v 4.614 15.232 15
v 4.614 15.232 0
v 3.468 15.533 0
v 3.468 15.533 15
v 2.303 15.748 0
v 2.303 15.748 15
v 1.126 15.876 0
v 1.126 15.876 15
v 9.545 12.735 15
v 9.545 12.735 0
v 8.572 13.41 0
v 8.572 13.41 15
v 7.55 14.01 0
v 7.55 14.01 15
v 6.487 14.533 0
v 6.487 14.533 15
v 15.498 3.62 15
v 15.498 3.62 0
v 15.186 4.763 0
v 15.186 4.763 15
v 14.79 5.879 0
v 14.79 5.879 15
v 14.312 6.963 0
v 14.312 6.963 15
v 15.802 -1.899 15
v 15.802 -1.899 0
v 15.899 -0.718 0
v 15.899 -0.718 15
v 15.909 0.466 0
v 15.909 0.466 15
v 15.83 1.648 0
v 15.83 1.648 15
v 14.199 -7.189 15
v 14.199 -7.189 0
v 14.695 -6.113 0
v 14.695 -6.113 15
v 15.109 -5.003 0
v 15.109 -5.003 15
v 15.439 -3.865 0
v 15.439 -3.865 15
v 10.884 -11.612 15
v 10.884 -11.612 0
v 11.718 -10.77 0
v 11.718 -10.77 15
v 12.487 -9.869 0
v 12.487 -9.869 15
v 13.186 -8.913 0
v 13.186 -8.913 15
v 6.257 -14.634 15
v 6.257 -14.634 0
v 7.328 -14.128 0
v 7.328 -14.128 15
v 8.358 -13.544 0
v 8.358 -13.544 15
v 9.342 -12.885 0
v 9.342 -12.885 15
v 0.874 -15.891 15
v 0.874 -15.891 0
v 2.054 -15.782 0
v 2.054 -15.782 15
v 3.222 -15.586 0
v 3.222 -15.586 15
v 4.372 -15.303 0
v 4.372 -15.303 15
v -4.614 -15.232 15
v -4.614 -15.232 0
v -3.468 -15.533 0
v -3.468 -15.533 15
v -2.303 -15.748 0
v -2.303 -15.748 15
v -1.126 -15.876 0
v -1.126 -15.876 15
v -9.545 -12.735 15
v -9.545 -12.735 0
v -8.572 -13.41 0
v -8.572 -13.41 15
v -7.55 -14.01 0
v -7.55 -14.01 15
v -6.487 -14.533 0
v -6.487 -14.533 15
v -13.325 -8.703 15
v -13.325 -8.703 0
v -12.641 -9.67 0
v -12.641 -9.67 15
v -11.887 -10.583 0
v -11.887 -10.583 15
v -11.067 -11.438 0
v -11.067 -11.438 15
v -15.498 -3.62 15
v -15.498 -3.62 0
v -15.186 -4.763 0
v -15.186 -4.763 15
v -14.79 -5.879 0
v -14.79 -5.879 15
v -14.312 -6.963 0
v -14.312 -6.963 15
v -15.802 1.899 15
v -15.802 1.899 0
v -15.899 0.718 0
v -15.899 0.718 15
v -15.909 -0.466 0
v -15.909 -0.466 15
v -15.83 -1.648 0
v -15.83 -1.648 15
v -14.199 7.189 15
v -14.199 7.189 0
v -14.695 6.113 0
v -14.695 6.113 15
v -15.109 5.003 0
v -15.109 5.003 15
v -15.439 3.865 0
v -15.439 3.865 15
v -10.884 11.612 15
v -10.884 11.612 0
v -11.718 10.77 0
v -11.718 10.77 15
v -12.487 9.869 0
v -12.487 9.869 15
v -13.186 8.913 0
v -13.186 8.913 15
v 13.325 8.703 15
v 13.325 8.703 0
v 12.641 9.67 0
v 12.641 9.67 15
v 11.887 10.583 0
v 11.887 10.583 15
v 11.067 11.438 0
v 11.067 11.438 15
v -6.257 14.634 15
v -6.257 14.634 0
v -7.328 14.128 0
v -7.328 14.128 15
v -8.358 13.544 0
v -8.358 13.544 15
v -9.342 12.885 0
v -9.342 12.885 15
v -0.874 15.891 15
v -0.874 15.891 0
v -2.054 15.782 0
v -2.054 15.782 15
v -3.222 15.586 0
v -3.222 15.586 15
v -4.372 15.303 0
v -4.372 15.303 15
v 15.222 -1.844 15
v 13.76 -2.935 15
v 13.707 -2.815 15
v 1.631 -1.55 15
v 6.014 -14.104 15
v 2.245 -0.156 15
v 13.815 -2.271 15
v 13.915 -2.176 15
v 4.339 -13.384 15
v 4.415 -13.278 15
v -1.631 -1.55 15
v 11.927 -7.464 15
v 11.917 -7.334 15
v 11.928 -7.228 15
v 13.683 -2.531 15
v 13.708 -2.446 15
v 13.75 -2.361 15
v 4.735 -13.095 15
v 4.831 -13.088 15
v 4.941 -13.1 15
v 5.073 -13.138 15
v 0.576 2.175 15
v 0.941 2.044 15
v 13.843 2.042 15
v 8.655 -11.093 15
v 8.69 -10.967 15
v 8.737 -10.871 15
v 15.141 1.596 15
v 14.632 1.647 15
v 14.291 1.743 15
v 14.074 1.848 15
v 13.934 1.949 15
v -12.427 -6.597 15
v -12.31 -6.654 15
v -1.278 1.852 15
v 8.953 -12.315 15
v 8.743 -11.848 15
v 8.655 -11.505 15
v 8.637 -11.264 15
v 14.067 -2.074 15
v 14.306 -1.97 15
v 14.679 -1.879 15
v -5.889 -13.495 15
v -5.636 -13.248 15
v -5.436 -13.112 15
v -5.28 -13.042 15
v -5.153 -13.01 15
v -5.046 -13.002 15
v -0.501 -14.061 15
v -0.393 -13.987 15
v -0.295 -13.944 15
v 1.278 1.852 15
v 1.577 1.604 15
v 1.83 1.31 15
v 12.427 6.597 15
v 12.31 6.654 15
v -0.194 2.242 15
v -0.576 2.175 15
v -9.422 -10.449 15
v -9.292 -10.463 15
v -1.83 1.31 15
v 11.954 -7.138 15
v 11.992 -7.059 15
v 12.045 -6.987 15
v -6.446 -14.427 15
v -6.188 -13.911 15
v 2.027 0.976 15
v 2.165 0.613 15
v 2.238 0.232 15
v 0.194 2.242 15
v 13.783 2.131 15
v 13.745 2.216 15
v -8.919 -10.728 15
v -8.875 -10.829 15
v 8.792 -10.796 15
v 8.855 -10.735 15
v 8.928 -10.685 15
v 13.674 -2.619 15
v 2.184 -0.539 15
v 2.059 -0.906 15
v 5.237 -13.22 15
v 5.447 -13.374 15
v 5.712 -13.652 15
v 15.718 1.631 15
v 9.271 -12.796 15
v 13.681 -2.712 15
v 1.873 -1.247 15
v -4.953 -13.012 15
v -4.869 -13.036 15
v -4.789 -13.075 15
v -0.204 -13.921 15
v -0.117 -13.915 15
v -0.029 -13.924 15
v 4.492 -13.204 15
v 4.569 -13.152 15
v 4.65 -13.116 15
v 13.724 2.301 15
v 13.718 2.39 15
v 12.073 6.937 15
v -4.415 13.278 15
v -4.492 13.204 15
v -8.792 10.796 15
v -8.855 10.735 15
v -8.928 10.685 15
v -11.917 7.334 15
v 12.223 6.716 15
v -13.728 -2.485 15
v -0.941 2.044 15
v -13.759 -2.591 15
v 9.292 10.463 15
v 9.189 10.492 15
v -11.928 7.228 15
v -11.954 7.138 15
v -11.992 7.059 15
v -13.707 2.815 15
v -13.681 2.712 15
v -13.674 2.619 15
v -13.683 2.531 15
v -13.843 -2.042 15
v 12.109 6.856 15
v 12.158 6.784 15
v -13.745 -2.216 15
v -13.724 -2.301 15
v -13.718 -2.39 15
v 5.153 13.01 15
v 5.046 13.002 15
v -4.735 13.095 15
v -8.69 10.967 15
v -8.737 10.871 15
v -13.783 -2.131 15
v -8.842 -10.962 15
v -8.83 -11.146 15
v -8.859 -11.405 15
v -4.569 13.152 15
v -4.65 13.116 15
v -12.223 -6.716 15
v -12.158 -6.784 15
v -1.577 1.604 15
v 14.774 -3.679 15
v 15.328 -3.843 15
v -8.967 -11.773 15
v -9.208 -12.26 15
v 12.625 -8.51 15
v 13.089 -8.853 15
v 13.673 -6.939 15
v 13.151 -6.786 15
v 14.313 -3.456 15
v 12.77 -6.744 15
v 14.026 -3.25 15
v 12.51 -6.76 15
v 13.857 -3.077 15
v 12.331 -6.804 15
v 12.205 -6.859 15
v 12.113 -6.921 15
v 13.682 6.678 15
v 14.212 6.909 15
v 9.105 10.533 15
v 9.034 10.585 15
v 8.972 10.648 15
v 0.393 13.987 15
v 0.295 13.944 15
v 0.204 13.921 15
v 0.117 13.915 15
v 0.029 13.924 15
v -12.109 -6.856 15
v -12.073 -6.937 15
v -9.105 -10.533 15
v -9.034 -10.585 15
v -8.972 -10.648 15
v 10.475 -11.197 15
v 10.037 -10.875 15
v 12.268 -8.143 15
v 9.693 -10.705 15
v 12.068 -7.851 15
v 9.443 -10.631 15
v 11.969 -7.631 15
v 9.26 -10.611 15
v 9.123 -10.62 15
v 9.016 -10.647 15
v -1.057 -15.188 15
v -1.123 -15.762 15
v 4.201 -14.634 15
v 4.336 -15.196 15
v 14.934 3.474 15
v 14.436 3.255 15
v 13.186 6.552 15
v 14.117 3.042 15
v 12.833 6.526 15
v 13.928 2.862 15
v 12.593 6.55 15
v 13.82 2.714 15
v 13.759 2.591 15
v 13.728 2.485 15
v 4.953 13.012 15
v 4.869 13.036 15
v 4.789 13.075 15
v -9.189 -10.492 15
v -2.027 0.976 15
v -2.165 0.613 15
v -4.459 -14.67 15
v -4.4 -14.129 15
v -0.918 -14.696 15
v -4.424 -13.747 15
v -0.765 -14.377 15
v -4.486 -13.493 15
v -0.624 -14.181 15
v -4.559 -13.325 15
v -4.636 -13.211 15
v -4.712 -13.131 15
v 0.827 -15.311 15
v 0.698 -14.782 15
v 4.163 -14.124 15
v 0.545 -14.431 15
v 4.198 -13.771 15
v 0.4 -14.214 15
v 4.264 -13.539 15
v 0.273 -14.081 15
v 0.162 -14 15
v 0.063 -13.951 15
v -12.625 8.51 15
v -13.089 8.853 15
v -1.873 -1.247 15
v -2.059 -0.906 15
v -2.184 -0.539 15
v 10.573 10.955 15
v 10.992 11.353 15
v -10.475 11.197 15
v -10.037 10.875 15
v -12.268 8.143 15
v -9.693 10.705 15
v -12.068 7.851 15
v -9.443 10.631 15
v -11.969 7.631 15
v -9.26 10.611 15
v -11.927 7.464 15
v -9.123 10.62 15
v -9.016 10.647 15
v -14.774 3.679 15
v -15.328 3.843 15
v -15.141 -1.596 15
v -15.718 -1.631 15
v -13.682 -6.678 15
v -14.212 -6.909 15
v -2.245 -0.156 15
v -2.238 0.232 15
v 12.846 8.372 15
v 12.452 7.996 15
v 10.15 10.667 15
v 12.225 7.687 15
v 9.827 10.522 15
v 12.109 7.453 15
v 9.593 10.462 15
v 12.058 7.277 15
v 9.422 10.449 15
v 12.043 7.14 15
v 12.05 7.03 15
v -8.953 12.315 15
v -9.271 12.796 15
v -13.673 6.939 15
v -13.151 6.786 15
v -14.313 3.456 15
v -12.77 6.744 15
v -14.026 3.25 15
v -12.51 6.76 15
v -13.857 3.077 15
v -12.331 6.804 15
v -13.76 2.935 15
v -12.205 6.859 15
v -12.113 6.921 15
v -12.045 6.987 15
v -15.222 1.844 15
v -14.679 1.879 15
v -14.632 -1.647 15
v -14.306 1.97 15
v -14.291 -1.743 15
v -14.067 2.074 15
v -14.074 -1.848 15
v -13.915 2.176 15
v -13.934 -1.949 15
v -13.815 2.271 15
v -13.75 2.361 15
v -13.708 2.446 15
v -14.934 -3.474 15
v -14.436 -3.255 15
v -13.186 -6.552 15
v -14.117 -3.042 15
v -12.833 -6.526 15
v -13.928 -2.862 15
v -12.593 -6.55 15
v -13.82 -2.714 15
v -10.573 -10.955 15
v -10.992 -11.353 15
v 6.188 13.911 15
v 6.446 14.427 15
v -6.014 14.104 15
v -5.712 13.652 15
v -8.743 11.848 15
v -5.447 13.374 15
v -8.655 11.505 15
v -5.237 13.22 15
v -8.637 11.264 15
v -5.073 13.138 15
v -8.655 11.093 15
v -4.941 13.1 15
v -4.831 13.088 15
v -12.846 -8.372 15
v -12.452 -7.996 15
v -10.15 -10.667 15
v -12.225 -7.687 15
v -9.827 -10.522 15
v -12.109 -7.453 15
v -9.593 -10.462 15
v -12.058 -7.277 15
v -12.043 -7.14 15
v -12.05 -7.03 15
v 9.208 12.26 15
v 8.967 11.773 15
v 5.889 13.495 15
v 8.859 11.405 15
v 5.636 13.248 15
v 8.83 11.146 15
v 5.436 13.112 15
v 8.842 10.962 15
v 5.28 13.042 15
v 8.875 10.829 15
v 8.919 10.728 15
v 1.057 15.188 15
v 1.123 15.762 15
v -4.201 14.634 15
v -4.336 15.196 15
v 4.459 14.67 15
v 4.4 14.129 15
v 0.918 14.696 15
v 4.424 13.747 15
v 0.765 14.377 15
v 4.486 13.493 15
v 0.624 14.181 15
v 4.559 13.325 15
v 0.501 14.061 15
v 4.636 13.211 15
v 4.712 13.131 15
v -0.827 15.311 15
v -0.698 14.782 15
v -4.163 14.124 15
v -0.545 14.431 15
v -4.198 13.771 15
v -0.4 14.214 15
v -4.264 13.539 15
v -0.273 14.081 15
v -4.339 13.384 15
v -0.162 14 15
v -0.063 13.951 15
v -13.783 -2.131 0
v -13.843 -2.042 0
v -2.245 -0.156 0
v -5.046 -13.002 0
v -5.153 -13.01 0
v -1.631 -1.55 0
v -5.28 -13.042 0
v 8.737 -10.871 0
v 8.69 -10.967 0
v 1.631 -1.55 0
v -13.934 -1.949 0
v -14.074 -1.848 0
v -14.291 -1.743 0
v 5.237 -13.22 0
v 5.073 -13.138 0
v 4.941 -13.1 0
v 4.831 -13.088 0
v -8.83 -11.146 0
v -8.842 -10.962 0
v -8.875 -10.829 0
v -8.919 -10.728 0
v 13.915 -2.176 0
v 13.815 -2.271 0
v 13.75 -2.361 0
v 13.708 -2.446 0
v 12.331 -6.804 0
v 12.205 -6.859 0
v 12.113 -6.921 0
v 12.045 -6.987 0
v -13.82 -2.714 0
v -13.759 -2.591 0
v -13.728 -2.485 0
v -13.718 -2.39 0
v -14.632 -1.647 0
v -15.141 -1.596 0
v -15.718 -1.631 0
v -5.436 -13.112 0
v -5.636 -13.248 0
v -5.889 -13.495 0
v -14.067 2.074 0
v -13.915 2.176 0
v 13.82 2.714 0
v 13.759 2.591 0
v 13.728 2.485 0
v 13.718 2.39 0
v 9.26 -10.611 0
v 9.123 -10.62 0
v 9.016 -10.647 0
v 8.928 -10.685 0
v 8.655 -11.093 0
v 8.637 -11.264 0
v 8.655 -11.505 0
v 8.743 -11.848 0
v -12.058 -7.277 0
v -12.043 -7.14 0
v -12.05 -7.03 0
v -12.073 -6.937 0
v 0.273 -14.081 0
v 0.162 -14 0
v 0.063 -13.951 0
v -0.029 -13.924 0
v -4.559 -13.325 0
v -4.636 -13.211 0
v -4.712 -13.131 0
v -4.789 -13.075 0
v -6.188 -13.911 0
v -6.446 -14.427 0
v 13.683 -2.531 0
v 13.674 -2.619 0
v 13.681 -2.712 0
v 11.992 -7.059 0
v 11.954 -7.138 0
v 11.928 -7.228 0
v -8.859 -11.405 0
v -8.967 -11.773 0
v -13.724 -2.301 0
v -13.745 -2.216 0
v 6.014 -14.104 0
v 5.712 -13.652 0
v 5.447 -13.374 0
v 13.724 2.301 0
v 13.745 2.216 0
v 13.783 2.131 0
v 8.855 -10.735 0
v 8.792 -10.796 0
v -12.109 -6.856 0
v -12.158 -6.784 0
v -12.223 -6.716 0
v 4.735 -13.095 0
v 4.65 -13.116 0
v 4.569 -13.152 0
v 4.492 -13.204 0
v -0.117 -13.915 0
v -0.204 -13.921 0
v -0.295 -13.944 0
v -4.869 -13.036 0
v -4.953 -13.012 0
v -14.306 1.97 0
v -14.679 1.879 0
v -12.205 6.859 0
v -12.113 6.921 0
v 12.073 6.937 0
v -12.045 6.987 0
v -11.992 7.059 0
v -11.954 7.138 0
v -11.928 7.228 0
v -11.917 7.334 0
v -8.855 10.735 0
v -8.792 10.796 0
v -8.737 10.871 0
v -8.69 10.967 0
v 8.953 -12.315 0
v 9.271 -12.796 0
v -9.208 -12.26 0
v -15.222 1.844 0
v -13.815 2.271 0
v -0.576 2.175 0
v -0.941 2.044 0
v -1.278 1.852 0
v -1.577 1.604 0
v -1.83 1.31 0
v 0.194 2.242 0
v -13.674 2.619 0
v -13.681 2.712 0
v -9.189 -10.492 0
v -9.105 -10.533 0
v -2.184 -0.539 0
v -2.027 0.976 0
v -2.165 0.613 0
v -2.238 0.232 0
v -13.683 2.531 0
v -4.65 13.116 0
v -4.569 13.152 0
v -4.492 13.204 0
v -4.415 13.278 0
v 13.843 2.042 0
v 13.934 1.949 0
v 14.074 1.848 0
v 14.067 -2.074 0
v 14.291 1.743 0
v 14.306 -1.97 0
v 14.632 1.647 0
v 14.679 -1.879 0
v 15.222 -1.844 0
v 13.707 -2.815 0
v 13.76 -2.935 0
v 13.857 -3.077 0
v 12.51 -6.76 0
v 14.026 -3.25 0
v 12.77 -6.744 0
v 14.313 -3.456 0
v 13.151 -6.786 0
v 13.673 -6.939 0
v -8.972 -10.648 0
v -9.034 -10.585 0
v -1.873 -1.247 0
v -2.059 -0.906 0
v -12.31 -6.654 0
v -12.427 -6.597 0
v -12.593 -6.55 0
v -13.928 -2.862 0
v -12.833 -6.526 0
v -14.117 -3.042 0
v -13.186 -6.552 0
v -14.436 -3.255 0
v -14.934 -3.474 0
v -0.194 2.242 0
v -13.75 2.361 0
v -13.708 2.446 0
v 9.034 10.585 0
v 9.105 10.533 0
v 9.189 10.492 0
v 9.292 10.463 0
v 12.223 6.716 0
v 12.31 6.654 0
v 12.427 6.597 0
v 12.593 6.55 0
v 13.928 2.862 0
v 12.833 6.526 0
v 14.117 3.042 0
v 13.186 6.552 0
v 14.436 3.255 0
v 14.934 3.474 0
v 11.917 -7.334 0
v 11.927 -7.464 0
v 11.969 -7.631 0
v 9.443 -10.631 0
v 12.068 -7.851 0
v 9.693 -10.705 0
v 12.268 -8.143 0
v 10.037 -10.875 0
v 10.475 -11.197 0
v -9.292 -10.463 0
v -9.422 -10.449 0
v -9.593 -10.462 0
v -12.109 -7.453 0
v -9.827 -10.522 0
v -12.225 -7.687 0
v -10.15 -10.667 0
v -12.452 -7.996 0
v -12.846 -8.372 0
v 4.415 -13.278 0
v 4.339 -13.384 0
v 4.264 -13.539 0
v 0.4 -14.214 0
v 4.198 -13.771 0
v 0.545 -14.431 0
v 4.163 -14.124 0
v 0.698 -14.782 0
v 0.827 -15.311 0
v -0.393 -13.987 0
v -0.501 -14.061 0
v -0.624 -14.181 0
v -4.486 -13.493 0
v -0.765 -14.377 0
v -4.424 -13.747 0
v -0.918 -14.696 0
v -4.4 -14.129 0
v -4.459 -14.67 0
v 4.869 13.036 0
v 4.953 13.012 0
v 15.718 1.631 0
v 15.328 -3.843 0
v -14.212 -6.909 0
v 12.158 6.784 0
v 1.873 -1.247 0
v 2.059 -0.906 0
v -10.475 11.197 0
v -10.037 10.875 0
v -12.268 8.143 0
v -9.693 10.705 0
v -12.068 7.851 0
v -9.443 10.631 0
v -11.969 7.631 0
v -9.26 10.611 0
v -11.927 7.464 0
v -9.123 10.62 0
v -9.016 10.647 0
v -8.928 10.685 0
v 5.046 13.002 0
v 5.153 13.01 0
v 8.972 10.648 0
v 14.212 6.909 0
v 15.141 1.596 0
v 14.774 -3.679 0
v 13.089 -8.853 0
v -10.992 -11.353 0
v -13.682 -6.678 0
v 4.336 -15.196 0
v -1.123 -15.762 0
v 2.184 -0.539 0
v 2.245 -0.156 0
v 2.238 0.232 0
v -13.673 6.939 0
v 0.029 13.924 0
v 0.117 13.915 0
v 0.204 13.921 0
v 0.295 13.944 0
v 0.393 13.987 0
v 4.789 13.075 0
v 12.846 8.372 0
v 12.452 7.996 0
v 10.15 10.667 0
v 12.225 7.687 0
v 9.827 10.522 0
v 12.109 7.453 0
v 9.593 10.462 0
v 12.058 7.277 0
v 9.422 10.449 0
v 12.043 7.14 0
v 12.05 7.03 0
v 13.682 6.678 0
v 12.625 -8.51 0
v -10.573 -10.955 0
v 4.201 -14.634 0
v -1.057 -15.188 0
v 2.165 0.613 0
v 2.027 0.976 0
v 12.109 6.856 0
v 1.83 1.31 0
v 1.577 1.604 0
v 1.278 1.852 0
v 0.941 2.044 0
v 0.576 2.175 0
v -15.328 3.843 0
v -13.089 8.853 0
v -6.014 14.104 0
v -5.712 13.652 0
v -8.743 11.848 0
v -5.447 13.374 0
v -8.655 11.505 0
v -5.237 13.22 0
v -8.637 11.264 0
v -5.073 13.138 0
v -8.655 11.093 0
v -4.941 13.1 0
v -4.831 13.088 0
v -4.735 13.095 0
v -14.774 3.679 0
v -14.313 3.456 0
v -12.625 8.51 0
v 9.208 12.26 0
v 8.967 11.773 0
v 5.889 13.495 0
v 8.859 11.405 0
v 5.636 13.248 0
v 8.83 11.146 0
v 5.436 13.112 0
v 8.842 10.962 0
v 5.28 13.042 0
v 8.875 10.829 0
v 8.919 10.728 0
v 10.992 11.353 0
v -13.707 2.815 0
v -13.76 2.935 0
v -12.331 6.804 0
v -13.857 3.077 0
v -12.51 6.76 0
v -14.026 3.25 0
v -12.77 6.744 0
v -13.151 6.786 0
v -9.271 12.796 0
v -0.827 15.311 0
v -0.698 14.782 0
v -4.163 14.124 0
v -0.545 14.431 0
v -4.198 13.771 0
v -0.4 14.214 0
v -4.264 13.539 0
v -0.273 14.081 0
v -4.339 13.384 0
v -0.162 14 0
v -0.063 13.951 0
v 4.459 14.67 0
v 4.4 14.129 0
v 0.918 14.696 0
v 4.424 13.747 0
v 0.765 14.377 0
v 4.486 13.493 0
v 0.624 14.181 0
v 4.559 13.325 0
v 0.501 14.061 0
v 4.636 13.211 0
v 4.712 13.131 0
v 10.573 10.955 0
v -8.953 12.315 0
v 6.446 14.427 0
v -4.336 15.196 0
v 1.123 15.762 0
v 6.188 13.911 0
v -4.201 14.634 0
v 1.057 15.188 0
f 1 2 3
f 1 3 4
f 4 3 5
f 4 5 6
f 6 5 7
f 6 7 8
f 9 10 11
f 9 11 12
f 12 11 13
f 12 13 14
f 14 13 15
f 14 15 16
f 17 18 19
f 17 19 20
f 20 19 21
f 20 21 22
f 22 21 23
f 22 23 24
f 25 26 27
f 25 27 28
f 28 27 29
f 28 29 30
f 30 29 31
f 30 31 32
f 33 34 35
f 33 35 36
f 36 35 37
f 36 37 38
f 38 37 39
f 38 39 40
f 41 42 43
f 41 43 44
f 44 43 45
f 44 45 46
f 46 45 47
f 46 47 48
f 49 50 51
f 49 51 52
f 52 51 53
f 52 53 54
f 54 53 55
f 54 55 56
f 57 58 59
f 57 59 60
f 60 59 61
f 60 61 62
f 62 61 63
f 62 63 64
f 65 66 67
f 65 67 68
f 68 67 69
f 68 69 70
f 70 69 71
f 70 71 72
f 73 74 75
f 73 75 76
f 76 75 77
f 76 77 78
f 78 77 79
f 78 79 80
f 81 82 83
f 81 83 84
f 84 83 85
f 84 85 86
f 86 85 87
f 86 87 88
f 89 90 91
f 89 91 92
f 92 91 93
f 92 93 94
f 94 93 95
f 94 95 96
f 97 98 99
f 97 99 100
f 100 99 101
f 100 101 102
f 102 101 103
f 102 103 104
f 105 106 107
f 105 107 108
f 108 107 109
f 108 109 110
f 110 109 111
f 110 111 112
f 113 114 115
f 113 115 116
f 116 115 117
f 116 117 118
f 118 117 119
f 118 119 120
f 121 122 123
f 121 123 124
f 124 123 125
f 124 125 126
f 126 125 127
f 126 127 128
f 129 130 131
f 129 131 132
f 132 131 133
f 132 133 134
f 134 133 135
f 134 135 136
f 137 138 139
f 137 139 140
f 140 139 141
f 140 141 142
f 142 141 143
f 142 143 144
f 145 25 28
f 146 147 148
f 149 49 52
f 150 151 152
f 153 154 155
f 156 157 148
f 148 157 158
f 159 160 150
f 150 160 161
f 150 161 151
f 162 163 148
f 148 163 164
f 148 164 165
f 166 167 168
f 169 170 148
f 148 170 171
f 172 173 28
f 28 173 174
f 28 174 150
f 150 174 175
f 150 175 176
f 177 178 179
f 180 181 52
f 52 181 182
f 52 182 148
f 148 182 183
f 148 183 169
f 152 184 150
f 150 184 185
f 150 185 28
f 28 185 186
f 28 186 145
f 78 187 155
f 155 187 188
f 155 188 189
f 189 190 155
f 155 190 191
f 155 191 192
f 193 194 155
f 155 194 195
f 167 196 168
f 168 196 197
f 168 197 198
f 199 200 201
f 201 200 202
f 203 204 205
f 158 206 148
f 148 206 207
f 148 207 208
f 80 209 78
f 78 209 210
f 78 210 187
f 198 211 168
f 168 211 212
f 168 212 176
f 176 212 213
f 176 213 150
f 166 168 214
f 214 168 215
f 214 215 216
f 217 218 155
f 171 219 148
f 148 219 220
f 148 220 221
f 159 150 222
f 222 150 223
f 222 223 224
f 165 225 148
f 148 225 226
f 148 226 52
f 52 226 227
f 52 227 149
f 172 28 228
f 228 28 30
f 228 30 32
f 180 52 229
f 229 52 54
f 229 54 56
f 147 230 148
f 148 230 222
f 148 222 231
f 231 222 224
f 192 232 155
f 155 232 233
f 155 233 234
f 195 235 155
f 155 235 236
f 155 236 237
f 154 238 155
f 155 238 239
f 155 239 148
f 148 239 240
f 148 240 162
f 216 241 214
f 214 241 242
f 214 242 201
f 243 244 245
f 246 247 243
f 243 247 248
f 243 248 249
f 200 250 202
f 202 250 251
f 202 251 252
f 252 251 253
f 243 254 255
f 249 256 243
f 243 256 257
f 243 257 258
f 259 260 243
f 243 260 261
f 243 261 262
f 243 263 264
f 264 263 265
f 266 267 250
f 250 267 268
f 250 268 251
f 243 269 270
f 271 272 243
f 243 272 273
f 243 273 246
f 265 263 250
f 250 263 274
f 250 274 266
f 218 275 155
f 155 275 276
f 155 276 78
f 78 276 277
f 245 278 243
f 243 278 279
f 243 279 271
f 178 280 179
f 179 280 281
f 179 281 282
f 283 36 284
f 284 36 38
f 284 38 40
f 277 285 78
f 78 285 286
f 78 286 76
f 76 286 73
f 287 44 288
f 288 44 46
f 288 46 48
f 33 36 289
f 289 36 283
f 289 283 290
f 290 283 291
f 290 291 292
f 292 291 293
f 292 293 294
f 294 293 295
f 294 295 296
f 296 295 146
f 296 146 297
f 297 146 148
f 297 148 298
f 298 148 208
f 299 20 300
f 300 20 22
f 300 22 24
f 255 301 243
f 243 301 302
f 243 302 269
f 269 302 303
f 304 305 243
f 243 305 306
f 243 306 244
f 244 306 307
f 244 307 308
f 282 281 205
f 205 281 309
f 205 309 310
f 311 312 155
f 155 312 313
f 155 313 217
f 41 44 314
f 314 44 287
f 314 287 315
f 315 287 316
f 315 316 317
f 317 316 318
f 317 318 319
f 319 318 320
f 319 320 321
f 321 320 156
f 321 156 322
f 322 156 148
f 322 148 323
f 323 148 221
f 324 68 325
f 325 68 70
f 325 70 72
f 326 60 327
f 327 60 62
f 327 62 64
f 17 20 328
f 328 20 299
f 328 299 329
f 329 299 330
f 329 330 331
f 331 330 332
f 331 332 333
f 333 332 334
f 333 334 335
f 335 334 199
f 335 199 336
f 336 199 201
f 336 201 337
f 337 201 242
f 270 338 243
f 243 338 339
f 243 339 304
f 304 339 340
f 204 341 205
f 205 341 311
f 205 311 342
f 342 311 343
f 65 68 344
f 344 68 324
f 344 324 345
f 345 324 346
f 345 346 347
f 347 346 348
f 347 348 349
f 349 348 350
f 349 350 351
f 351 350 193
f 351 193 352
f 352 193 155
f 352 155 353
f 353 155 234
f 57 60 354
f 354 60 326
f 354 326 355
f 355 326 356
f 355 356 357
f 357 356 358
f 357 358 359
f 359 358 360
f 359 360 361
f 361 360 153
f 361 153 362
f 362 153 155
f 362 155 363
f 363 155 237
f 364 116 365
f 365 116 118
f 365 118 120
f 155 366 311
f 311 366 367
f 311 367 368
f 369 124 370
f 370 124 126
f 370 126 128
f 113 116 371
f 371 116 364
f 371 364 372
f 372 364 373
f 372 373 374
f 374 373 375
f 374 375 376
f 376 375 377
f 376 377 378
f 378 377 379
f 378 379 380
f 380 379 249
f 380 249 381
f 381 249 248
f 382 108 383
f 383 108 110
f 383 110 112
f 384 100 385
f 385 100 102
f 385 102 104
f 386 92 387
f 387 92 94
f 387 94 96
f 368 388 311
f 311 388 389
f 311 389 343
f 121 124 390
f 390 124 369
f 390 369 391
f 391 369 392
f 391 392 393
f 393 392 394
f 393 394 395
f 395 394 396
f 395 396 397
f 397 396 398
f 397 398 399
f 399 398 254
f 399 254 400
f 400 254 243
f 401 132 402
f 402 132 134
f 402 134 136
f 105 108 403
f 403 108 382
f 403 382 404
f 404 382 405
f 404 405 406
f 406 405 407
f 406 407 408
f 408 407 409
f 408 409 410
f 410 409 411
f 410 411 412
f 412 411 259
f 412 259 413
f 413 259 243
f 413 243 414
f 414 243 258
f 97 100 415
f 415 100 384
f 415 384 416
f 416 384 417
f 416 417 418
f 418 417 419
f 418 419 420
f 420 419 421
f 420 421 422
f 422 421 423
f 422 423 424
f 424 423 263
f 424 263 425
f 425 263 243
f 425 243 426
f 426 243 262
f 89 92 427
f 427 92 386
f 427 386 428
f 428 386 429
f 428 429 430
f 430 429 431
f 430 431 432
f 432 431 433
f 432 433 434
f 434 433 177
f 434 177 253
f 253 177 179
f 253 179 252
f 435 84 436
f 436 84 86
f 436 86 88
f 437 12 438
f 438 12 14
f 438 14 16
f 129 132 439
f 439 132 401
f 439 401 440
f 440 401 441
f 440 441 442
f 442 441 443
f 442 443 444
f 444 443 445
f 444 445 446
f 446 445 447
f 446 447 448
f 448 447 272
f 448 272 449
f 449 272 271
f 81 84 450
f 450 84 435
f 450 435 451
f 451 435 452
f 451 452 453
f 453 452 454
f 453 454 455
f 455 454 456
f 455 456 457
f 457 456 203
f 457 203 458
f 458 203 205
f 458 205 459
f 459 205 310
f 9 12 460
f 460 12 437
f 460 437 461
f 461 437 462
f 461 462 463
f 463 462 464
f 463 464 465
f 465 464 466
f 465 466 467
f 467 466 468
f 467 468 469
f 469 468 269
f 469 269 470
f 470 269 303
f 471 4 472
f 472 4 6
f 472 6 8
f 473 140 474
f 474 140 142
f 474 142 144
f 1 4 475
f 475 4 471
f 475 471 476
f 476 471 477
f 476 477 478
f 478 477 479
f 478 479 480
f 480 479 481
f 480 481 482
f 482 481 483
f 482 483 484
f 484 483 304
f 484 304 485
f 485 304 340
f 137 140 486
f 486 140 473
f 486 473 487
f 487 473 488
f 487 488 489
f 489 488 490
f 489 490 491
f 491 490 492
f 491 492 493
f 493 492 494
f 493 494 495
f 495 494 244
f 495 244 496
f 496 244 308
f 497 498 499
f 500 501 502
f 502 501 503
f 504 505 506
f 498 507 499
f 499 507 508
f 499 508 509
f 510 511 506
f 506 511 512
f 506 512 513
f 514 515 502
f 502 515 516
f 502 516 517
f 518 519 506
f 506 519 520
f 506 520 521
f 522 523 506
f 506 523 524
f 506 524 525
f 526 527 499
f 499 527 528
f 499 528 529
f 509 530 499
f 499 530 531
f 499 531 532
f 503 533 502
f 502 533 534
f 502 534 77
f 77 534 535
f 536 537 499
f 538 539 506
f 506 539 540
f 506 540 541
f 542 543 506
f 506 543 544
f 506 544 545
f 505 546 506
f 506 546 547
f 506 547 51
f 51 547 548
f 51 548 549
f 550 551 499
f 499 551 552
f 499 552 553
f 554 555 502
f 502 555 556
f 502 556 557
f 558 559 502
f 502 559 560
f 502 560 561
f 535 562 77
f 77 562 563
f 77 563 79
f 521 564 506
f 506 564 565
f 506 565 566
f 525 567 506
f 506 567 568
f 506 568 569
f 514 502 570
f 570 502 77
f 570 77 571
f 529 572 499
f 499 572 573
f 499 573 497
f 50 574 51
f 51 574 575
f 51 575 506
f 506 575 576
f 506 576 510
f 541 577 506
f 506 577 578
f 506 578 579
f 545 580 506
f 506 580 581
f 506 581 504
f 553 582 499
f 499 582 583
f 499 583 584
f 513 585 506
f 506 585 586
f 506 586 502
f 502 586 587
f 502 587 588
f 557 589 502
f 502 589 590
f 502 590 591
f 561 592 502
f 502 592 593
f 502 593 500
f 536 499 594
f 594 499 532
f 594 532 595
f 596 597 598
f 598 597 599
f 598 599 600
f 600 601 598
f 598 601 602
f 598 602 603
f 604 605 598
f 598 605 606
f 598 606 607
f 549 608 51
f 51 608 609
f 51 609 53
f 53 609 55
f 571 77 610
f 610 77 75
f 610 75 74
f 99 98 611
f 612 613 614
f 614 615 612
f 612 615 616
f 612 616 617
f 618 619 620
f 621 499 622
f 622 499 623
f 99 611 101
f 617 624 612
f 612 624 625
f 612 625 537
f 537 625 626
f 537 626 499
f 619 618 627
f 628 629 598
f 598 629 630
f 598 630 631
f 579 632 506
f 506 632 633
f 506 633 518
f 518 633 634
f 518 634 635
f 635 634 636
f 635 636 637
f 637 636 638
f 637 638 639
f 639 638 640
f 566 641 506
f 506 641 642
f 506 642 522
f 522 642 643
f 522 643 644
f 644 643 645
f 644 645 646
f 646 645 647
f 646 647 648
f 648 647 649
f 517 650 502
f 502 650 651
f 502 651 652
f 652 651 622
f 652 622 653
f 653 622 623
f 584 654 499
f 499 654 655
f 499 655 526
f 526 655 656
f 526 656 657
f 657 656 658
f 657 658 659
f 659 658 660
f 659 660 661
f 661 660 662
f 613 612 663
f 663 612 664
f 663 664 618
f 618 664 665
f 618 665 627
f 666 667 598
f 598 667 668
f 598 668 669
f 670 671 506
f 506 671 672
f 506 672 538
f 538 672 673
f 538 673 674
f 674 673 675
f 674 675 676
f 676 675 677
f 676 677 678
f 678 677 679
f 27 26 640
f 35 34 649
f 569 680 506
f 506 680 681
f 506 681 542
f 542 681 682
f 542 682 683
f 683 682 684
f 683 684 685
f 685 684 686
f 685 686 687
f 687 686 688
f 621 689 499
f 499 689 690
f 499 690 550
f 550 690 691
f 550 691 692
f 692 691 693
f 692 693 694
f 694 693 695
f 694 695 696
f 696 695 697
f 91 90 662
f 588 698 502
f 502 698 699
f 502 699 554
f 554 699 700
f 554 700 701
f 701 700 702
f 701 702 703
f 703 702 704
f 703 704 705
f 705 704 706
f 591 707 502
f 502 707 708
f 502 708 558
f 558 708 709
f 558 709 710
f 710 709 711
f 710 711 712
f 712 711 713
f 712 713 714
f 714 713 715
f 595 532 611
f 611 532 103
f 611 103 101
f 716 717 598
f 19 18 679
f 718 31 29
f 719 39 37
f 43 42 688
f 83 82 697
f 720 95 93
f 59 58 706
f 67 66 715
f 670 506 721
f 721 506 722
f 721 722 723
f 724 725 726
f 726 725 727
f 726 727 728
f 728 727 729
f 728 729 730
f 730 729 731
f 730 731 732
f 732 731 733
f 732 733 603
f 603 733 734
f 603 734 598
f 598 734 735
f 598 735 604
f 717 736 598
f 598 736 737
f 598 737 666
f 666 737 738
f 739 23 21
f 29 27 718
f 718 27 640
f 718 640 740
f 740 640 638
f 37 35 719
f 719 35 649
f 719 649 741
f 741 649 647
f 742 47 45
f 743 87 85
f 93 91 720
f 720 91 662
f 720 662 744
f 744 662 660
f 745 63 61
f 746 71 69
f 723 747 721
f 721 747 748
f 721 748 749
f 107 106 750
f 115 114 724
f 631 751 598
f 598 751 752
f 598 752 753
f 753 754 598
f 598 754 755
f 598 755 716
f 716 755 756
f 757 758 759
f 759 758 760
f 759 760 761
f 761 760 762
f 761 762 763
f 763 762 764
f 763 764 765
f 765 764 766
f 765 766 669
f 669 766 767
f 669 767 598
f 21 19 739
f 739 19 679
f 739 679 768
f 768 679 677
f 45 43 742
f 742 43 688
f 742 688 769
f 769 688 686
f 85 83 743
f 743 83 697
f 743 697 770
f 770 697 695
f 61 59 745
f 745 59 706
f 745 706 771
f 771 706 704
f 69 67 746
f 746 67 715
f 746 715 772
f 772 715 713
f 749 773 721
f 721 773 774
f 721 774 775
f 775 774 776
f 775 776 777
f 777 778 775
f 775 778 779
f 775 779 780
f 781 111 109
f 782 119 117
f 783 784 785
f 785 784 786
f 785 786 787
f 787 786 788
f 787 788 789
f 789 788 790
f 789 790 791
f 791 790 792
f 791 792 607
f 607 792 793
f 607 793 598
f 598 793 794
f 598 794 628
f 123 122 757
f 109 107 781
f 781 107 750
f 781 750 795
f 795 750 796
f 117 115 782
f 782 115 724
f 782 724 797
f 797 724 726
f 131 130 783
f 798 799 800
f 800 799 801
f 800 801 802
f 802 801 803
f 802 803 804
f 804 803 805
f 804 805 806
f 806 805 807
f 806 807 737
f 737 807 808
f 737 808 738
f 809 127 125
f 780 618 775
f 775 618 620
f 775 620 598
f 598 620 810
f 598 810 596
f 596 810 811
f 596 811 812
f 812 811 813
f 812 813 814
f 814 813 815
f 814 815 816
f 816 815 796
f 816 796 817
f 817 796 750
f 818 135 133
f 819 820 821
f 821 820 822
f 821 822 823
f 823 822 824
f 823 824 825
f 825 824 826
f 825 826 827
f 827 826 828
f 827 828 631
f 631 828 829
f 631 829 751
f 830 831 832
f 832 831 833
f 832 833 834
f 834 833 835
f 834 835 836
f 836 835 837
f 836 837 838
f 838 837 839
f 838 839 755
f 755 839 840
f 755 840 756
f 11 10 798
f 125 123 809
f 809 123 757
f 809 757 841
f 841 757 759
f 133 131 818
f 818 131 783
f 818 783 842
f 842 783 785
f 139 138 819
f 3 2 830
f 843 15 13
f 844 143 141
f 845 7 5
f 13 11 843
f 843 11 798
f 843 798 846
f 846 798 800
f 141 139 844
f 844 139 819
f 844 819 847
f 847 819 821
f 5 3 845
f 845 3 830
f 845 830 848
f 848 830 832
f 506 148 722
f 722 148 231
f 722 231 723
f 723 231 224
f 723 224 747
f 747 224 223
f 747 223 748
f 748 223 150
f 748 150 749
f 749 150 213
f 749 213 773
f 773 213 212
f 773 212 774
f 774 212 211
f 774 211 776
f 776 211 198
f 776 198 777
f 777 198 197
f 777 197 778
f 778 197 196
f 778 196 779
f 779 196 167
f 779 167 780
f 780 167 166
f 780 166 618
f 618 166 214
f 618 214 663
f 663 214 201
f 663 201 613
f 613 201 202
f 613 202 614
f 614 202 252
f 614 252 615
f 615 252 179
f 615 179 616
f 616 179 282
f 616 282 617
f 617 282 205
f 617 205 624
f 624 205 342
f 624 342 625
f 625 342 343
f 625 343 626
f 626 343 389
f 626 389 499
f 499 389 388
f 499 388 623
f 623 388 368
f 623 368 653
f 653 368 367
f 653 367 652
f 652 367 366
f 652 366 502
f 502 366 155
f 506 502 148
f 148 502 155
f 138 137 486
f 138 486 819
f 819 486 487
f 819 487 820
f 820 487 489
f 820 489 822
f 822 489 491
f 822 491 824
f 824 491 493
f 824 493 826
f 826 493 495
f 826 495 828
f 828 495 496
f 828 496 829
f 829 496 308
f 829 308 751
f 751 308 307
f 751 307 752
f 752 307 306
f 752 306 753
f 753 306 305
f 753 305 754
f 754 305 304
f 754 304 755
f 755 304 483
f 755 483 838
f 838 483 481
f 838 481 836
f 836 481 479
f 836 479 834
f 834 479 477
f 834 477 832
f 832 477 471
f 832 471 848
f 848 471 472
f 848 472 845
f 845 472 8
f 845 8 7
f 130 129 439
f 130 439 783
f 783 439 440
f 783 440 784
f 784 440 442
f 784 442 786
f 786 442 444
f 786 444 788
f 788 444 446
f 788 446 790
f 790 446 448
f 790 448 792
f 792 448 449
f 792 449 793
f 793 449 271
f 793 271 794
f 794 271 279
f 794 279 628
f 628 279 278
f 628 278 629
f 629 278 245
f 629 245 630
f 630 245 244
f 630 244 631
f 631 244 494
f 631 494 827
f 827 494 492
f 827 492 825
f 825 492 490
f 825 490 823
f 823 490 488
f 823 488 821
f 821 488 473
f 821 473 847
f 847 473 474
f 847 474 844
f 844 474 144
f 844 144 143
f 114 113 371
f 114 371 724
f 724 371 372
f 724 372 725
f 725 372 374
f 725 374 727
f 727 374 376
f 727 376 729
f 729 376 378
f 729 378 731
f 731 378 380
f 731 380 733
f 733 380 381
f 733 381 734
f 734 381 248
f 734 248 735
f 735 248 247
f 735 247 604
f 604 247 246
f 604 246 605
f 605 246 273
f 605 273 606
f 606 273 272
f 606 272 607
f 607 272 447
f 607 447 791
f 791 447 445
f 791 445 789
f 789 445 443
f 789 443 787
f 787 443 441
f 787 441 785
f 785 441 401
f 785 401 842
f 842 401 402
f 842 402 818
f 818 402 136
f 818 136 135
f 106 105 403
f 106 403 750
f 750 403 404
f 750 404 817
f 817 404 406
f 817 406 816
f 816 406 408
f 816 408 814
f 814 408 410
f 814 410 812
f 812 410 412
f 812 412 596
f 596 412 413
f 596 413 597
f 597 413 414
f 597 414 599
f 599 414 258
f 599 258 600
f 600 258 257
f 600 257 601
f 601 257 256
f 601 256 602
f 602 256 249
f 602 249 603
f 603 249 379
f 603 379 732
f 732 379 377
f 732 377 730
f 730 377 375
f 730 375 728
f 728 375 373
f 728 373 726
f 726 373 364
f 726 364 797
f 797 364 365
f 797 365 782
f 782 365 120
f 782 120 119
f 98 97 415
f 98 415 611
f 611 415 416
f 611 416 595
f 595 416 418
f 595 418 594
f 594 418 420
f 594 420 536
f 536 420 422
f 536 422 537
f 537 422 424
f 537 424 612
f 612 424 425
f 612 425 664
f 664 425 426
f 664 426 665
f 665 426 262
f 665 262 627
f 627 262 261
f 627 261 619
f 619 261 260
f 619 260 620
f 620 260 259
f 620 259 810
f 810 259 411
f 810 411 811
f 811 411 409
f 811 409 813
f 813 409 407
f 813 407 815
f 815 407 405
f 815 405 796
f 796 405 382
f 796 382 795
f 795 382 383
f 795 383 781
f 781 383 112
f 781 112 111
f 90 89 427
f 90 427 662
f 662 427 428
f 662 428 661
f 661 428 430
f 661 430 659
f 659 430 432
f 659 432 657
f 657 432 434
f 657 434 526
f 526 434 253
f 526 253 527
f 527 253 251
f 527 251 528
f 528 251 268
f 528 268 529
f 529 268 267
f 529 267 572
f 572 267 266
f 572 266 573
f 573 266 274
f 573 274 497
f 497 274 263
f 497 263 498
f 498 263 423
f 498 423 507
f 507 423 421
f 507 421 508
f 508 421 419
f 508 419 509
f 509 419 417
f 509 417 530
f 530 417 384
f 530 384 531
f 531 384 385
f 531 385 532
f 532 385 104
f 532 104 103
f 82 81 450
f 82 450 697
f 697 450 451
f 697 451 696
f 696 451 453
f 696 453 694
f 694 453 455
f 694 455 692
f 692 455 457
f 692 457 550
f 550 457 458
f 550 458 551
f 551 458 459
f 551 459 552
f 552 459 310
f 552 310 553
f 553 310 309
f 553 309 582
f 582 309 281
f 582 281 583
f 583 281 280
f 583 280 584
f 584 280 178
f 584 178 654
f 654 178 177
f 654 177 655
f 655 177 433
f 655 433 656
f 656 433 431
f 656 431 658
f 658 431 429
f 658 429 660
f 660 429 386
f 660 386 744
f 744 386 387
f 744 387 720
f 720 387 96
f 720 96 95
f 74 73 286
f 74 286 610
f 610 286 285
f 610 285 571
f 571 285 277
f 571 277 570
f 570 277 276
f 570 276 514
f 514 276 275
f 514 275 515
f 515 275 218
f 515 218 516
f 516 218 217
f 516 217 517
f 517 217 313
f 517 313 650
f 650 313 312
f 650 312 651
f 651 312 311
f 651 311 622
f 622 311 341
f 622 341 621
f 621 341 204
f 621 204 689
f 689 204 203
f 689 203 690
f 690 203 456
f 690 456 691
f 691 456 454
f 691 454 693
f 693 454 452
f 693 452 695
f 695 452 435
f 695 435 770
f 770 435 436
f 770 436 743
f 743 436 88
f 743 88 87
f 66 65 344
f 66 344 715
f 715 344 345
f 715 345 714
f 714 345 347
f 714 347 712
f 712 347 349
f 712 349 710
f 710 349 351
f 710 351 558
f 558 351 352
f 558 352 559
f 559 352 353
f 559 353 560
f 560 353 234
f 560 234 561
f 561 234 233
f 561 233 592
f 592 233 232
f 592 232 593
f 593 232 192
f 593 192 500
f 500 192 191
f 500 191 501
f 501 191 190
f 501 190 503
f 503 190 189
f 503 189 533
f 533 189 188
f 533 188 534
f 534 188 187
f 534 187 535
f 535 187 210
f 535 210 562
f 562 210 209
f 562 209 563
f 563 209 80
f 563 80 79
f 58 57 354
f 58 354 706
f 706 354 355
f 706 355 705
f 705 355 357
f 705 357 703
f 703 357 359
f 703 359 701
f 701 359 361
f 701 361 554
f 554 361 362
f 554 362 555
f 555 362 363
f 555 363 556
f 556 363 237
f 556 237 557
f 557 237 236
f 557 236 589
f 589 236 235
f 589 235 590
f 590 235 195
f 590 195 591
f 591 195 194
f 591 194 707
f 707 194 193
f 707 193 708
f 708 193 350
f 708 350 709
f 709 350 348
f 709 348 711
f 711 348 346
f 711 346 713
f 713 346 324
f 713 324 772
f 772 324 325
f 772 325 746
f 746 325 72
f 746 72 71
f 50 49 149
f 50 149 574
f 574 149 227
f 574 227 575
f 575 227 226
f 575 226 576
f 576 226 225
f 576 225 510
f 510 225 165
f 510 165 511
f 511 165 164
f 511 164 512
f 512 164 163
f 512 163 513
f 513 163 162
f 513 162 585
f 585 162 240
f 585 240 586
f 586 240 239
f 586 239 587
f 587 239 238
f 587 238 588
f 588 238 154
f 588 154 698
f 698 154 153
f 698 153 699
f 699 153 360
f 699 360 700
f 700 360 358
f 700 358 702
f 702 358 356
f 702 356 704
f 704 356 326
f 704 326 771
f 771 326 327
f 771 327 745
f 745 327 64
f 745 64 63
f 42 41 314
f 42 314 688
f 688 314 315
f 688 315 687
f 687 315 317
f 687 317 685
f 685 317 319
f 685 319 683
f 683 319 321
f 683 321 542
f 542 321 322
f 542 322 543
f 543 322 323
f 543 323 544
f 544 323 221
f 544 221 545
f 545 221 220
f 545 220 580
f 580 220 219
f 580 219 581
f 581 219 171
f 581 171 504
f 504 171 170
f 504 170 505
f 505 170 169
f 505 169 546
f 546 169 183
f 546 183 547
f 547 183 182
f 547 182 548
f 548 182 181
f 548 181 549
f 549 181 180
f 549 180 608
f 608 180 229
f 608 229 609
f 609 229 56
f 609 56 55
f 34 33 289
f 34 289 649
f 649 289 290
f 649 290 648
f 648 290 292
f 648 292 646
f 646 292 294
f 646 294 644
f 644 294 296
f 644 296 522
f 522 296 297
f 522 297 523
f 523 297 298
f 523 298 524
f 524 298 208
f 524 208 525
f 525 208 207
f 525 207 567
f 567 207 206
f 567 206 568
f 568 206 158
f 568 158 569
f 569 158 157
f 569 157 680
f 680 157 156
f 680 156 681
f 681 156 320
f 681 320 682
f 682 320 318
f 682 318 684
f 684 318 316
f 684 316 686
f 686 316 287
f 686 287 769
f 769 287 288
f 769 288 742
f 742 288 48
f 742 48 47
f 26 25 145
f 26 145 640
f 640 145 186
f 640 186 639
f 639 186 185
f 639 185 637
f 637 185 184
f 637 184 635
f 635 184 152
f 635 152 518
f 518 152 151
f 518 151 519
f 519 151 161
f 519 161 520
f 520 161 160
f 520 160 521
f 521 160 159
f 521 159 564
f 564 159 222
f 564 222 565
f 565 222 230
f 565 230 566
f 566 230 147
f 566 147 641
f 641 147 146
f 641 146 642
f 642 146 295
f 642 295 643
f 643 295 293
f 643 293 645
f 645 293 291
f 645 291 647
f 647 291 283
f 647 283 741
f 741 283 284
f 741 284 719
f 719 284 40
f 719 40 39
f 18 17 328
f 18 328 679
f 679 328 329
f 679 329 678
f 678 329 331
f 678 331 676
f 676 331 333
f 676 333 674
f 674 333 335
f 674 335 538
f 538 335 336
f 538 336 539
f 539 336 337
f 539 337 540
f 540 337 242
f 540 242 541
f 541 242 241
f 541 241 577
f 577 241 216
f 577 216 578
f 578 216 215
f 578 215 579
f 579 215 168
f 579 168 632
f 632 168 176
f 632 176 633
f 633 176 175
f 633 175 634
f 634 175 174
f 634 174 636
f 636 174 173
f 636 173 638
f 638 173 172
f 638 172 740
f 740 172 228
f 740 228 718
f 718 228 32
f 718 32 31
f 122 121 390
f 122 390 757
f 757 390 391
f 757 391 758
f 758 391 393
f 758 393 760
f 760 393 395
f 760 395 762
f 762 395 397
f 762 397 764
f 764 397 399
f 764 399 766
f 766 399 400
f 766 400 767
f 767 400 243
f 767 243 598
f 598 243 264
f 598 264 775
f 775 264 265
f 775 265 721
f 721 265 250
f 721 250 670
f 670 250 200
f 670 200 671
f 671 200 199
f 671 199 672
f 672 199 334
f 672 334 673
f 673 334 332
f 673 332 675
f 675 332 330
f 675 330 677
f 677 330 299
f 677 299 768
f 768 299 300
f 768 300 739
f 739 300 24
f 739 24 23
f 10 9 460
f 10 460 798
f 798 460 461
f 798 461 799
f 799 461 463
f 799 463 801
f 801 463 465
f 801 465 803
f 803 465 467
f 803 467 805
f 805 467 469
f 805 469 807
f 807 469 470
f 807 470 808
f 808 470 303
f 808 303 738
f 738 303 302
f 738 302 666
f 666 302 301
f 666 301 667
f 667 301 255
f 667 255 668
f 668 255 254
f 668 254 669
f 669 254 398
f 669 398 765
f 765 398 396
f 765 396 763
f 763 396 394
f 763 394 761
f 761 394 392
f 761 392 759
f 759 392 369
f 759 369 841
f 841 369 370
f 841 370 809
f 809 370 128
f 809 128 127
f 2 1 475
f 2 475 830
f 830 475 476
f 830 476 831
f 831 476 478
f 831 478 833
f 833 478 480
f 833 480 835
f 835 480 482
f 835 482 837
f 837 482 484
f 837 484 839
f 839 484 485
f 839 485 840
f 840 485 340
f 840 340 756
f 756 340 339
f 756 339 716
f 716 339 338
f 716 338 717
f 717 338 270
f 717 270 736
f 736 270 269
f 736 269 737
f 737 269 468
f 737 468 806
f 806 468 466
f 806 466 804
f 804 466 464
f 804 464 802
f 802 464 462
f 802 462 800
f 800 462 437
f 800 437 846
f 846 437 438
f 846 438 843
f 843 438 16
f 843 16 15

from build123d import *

# Parameters (mm, degrees)
SKETCH_1_R               = 15.91549431
EXTRUDE_1_DEPTH          = 15
CUT_EXTRUDE_1_DEPTH      = 15
SKETCH_3_RX              = 2
SKETCH_3_RY              = 1
CUT_EXTRUDE_2_DEPTH      = 15
PATTERN_CIRCULAR_1_COUNT = 18


with BuildPart() as part:
    # Эскиз1 → Бобышка-Вытянуть1 (new body)
    with BuildSketch(Plane.XY):
        Circle(SKETCH_1_R)
    extrude(amount=EXTRUDE_1_DEPTH)

    # Эскиз2 → Вырез-Вытянуть1 (cut)
    with BuildSketch(Plane.XY.offset(15)):
        with BuildLine():
            Line((1.630950643, -1.55), (-1.630950643, -1.55))
            ThreePointArc((-1.630950643, -1.55), (0, 2.25), (1.630950643, -1.55))
        make_face()
    extrude(amount=-CUT_EXTRUDE_1_DEPTH, mode=Mode.SUBTRACT)

    # Эскиз3 → Вырез-Вытянуть2 (cut)
    with BuildSketch(Plane.XY.offset(15)):
        with Locations(Location((0.125778317, 15.914997296), (0, 0, 90))):
            Ellipse(SKETCH_3_RX, SKETCH_3_RY)
    cut_extrude_2 = extrude(amount=-CUT_EXTRUDE_2_DEPTH, mode=Mode.SUBTRACT)

    # Круговой массив1: Вырез-Вытянуть2 ×18 about axis
    pattern_circular_1_axis = Axis((0, 0, 15), (0, 0, 1))
    for i in range(1, PATTERN_CIRCULAR_1_COUNT):
        add(cut_extrude_2.rotate(pattern_circular_1_axis, i * 360 / PATTERN_CIRCULAR_1_COUNT), mode=Mode.SUBTRACT)


solid = part.part
